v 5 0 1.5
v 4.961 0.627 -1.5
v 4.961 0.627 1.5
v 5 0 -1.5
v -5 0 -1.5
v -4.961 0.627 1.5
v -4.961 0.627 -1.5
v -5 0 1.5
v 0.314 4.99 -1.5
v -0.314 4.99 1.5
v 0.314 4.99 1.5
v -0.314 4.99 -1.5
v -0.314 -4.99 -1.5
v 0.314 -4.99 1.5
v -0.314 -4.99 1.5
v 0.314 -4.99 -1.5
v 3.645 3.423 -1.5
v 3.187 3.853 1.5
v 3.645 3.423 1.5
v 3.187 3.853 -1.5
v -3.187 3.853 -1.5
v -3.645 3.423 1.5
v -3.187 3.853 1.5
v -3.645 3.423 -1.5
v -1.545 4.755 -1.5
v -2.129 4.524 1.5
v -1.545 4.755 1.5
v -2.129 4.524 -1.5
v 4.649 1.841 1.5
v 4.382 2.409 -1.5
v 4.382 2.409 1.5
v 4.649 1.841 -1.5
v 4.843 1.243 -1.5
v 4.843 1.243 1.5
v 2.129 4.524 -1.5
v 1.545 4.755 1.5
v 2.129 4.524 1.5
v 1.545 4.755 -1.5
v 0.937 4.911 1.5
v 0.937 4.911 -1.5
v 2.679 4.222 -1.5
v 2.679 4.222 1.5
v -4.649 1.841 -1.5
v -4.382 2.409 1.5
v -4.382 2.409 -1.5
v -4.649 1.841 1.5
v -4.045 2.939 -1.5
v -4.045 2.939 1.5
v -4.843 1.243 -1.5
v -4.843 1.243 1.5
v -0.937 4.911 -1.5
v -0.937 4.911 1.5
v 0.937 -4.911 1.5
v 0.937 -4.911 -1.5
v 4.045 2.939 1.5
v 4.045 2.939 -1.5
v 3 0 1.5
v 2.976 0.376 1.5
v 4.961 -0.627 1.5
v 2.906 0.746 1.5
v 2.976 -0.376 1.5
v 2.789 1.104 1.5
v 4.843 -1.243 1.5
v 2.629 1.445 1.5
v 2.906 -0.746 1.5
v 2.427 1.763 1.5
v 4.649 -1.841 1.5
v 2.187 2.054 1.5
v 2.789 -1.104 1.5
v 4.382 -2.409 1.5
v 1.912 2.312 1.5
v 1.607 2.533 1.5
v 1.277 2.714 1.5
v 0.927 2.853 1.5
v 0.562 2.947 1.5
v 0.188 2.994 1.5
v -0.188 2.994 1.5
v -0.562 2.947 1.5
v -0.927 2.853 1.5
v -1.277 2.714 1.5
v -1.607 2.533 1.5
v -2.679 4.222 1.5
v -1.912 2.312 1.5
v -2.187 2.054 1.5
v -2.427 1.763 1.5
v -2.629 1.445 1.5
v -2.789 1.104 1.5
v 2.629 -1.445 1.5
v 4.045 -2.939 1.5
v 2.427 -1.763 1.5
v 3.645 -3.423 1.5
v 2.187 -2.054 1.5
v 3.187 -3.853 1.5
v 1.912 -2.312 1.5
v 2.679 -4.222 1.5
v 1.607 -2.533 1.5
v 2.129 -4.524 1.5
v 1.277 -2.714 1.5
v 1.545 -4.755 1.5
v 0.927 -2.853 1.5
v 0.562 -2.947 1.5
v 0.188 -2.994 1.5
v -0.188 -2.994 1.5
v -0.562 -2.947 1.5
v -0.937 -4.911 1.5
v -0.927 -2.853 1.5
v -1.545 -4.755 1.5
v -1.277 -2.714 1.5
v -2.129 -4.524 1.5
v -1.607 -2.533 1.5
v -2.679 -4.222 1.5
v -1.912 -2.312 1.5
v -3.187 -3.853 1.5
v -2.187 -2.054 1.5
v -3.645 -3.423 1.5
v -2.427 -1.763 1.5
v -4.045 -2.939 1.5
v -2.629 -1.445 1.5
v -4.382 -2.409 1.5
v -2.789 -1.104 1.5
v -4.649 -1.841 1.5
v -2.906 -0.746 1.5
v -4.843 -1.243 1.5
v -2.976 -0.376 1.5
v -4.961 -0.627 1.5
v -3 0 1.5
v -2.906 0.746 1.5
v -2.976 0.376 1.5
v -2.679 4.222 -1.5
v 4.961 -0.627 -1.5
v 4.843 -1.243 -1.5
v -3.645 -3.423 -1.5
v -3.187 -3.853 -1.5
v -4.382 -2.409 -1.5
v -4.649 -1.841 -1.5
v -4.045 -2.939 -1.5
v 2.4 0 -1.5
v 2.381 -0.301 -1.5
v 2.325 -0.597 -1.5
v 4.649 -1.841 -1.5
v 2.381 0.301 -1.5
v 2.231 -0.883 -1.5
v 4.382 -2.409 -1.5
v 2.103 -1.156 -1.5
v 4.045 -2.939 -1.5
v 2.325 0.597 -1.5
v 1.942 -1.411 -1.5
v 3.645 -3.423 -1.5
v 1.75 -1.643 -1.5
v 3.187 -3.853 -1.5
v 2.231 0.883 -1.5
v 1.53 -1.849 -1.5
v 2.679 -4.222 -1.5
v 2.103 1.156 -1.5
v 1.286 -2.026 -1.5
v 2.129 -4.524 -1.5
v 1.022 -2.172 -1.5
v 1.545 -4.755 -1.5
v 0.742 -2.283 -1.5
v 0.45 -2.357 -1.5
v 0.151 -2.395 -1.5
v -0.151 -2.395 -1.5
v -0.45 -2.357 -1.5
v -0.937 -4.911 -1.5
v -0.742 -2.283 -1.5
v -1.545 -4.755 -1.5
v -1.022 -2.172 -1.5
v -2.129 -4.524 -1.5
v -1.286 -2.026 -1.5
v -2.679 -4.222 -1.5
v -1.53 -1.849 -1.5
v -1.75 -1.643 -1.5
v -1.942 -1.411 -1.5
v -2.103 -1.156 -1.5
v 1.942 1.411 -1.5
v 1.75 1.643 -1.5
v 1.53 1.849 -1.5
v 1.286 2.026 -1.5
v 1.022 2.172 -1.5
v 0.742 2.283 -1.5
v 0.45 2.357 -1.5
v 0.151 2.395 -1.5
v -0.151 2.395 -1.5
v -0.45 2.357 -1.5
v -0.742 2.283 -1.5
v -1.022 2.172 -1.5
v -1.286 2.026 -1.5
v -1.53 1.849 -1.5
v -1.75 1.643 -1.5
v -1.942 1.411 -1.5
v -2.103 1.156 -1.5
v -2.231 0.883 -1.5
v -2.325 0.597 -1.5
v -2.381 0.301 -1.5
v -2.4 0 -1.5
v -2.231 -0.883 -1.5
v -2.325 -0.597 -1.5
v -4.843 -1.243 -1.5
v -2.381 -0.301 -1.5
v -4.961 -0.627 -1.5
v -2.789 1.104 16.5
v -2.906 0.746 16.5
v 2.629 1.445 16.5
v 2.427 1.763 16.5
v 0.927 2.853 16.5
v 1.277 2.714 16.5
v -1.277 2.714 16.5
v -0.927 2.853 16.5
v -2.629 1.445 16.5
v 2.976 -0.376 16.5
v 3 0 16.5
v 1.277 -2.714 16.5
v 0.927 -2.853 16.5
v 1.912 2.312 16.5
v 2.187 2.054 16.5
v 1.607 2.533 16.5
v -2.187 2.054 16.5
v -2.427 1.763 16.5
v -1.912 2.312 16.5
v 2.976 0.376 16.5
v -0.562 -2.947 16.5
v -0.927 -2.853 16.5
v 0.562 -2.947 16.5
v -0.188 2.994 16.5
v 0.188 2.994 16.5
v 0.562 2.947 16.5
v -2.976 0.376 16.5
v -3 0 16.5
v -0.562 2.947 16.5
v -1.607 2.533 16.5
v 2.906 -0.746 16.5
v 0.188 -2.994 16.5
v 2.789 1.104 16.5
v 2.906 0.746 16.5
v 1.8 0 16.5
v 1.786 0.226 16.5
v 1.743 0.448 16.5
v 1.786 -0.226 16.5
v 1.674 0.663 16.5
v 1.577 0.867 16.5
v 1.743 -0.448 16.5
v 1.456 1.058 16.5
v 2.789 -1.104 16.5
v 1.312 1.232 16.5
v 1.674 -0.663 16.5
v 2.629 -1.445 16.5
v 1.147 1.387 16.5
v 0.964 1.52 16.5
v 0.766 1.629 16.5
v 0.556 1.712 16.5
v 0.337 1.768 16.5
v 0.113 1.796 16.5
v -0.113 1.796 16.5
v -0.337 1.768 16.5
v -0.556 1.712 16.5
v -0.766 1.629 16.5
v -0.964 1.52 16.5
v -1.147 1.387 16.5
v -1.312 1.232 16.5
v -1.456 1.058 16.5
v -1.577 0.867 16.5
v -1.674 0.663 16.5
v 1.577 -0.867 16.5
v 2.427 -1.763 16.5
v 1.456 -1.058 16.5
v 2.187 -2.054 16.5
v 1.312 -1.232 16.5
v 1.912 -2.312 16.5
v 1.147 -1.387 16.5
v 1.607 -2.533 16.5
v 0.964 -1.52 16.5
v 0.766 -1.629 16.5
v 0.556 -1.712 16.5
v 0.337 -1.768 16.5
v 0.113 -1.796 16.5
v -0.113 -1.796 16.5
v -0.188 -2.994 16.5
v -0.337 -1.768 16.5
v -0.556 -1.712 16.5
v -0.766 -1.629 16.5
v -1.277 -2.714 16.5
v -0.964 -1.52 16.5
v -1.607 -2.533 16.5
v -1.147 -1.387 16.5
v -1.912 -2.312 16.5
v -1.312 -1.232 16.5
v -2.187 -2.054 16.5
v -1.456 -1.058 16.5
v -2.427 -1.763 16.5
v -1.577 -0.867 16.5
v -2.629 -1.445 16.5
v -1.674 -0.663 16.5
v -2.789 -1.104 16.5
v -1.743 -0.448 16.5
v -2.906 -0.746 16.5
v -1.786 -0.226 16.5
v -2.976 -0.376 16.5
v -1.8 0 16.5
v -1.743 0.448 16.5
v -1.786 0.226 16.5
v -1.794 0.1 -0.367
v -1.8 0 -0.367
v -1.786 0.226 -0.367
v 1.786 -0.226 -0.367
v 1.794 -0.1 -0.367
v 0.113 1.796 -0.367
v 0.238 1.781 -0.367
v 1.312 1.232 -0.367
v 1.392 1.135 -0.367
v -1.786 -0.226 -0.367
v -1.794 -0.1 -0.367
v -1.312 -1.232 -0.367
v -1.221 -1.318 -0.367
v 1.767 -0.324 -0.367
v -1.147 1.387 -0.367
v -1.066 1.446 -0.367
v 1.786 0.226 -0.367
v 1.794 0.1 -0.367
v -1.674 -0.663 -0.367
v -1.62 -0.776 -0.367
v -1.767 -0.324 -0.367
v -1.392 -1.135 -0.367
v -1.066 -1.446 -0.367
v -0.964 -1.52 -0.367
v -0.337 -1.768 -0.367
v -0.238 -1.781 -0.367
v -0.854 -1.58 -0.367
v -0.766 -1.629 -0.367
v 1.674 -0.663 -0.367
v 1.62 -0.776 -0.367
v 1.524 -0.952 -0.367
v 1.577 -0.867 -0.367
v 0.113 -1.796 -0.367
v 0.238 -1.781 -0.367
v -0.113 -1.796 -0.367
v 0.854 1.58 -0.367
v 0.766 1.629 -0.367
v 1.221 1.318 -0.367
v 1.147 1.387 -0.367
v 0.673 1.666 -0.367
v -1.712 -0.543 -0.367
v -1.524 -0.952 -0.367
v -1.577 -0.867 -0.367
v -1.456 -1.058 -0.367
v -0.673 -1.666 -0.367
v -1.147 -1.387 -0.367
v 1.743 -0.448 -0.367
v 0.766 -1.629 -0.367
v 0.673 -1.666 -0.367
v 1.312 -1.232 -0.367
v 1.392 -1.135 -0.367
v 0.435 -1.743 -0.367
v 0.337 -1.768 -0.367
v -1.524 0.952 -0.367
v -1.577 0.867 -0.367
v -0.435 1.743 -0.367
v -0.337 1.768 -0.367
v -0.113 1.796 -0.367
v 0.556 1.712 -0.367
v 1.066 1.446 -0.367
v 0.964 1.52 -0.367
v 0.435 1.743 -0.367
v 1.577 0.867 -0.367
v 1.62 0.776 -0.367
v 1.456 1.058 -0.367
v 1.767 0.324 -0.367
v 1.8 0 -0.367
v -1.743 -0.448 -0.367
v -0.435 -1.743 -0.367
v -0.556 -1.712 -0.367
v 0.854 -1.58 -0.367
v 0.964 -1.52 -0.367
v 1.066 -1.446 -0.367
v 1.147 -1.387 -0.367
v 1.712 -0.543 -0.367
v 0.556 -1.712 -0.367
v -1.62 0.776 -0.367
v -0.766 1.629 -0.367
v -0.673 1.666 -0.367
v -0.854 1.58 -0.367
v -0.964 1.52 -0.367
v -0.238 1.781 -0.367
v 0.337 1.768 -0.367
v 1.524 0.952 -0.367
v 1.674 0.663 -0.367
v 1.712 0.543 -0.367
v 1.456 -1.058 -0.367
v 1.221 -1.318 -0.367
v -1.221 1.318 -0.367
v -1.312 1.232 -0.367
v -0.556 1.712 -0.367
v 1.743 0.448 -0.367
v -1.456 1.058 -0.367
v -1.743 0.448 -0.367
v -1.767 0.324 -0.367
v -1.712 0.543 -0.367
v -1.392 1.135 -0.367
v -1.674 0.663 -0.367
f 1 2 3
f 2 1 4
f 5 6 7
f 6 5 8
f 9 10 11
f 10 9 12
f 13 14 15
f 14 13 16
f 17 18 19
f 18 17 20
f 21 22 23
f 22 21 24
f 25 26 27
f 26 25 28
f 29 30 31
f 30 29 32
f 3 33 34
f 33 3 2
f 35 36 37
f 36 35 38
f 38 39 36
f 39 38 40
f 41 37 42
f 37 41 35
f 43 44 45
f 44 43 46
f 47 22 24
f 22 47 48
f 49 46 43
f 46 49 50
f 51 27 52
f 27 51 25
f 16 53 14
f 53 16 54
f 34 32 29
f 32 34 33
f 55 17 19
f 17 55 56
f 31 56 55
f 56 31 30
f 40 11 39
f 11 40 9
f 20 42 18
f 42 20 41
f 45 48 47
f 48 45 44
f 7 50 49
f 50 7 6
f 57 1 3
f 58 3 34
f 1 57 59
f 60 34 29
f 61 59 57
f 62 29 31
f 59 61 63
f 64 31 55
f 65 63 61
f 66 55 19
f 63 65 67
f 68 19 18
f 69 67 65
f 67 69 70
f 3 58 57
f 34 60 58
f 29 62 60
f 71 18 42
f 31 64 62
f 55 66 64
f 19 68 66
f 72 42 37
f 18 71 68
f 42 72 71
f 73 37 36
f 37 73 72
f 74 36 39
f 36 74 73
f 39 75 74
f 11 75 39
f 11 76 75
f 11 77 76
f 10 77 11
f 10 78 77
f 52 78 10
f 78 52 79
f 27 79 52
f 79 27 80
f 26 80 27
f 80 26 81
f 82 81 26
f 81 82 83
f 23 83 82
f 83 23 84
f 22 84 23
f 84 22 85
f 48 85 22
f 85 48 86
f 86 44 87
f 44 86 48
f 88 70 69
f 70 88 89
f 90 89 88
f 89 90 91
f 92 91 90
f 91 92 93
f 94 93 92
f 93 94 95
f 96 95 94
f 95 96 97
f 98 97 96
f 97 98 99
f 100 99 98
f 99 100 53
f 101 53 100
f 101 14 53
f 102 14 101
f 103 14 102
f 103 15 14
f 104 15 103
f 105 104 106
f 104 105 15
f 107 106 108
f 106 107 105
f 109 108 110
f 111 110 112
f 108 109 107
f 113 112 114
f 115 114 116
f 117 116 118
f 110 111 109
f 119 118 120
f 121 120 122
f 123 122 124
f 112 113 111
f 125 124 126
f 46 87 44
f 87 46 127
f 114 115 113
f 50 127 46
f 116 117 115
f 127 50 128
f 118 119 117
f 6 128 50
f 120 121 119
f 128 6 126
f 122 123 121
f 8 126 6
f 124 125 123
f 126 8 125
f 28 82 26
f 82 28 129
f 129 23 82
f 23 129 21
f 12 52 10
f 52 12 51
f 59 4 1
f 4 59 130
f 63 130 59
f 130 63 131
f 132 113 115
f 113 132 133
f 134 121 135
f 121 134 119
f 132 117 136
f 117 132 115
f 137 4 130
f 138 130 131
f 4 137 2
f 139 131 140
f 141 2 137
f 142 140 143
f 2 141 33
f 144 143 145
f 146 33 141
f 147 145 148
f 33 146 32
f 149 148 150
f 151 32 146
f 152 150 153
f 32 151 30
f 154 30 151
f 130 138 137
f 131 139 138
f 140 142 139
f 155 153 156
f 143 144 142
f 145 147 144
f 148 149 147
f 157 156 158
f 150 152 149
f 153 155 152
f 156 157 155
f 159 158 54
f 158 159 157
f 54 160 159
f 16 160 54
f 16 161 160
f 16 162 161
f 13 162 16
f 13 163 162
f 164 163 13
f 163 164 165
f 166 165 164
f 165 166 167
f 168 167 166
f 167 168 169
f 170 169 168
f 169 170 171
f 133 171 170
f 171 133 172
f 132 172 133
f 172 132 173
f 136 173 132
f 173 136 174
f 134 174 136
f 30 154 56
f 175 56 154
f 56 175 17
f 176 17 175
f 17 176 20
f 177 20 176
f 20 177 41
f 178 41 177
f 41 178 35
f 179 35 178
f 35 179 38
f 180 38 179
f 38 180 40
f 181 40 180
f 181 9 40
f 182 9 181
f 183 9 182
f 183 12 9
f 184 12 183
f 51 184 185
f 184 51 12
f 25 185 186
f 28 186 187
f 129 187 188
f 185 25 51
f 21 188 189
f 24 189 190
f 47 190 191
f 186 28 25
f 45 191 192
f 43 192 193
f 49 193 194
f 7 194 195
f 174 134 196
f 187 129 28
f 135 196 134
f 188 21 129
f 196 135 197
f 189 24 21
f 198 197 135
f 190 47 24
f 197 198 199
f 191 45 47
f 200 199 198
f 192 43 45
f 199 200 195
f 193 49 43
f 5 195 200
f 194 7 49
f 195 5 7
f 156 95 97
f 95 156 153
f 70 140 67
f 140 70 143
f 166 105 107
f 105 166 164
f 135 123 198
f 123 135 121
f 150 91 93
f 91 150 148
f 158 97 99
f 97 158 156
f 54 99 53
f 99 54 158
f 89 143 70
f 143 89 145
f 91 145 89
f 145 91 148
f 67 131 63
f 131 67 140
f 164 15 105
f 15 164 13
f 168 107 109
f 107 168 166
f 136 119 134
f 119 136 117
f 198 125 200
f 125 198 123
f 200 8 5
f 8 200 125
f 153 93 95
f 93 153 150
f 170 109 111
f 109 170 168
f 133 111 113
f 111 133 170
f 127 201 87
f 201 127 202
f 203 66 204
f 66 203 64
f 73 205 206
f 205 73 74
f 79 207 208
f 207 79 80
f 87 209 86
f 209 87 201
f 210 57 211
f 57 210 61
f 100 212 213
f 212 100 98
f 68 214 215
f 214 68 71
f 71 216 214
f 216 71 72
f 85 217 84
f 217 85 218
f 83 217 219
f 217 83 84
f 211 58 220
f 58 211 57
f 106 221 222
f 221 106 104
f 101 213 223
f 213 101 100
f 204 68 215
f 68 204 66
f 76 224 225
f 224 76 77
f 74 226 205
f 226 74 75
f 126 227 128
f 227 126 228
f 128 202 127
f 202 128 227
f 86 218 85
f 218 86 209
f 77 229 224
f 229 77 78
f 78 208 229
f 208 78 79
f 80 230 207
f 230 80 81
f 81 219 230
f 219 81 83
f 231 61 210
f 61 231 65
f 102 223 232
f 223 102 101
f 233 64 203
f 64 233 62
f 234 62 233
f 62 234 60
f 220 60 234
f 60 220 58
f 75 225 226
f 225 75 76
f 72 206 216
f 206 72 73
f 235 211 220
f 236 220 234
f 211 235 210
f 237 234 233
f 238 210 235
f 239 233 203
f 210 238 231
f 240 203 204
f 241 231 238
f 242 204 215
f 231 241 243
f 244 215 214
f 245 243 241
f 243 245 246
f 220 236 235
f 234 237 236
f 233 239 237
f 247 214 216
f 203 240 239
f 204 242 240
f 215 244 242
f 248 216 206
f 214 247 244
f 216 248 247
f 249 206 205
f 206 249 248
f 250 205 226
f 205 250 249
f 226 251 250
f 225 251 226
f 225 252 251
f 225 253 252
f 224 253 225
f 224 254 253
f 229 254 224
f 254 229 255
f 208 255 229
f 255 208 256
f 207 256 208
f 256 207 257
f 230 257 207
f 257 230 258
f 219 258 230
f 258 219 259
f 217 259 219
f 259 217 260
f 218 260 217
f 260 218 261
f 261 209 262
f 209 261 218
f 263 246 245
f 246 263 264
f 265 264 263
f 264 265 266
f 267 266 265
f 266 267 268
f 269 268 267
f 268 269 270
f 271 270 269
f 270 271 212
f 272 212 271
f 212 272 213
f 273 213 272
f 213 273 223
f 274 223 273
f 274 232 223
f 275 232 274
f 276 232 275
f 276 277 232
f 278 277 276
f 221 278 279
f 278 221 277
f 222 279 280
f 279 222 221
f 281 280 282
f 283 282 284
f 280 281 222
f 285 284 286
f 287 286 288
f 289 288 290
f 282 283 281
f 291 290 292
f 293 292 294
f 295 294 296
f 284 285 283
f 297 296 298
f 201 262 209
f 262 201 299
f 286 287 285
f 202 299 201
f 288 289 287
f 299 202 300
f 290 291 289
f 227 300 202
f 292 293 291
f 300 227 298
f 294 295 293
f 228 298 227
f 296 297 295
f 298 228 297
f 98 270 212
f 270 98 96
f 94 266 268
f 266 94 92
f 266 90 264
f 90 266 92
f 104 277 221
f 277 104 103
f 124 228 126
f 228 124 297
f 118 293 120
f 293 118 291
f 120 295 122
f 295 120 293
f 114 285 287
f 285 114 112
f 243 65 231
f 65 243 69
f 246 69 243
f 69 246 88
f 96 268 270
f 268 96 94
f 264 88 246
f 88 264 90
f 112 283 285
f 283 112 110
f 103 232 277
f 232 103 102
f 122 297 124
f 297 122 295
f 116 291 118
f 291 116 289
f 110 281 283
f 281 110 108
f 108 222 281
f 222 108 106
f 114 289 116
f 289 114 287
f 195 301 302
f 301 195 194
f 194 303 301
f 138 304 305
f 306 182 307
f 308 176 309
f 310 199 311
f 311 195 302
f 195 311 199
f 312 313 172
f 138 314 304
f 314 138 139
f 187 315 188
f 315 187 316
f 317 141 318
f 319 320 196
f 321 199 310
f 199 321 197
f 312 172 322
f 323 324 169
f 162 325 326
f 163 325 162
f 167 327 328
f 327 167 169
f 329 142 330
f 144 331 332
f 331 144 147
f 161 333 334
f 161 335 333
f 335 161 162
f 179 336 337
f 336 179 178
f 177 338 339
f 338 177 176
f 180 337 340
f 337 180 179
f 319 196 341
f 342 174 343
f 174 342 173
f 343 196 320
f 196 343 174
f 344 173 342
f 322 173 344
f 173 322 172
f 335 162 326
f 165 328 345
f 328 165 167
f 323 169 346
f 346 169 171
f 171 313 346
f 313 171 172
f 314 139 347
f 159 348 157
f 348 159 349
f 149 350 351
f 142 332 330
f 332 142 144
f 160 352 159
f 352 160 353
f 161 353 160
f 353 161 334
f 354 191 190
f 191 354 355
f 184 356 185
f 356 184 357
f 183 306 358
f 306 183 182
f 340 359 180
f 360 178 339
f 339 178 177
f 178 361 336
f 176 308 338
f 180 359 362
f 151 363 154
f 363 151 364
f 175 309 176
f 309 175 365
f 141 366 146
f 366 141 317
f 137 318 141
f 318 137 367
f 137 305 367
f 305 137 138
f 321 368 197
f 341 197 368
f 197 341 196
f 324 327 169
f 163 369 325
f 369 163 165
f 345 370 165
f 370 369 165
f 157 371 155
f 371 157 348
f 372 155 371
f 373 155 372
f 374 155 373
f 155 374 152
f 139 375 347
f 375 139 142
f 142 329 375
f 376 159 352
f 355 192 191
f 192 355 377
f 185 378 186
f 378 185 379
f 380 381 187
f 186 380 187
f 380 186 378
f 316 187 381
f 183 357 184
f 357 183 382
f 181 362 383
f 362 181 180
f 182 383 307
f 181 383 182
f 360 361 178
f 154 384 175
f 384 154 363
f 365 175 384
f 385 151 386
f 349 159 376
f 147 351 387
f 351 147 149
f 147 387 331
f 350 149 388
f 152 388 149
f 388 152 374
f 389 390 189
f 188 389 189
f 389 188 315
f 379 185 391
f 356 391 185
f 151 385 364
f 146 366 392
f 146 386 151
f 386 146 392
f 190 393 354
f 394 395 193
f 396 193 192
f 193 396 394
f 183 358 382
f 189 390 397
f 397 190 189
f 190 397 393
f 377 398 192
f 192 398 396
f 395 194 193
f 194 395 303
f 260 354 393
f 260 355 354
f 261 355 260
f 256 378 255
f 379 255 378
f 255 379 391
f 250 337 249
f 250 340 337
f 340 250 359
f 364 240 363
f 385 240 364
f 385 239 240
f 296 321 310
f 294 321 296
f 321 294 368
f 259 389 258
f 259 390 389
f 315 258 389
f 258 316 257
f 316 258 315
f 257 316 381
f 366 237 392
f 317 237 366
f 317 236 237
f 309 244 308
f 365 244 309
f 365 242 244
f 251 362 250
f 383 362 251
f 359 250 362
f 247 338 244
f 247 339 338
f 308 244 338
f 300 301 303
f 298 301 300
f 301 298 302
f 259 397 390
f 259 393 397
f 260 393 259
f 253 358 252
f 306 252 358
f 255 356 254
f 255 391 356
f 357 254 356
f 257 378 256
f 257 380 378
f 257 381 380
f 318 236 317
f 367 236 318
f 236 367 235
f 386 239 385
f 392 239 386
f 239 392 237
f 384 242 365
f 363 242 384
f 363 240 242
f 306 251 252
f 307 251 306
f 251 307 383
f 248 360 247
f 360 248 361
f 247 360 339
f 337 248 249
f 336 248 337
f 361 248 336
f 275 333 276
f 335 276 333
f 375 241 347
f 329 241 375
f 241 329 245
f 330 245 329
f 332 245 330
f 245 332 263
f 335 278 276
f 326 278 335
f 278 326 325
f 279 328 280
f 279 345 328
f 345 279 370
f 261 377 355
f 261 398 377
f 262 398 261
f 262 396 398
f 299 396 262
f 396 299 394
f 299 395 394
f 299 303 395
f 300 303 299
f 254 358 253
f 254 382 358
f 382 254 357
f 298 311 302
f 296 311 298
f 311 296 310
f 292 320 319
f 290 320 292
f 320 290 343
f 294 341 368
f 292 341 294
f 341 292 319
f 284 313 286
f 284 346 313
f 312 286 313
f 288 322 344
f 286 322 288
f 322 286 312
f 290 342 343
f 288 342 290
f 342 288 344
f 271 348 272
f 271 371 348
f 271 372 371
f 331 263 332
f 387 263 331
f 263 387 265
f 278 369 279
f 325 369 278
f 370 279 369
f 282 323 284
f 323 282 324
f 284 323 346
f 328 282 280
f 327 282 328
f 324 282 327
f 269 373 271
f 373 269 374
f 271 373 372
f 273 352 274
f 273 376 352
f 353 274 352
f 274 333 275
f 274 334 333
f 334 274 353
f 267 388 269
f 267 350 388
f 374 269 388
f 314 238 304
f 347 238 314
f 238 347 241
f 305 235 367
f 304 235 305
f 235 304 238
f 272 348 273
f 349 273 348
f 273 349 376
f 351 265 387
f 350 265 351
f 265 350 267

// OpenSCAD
$fn = 50;


difference() {
	union() {
		translate(v = [0, 0, -1.5000000000]) {
			cylinder(h = 3, r = 5.0000000000);
		}
		translate(v = [0, 0, -1.5000000000]) {
			cylinder(h = 18, r = 3.0000000000);
		}
	}
	union() {
		translate(v = [0, 0, -1.5000000000]) {
			rotate(a = [0, 180, 0]) {
				difference() {
					union() {
						translate(v = [0, 0, -1.7000000000]) {
							cylinder(h = 1.7000000000, r1 = 1.5000000000, r2 = 2.4000000000);
						}
						translate(v = [0, 0, -18.0000000000]) {
							cylinder(h = 18, r = 1.5000000000);
						}
						translate(v = [0, 0, -18.0000000000]) {
							cylinder(h = 18, r = 1.8000000000);
						}
						translate(v = [0, 0, -18.0000000000]) {
							cylinder(h = 18, r = 1.5000000000);
						}
					}
					union();
				}
			}
		}
		translate(v = [0, 0, -50.0000000000]) {
			cylinder(h = 100, r = 1.5000000000);
		}
	}
}
